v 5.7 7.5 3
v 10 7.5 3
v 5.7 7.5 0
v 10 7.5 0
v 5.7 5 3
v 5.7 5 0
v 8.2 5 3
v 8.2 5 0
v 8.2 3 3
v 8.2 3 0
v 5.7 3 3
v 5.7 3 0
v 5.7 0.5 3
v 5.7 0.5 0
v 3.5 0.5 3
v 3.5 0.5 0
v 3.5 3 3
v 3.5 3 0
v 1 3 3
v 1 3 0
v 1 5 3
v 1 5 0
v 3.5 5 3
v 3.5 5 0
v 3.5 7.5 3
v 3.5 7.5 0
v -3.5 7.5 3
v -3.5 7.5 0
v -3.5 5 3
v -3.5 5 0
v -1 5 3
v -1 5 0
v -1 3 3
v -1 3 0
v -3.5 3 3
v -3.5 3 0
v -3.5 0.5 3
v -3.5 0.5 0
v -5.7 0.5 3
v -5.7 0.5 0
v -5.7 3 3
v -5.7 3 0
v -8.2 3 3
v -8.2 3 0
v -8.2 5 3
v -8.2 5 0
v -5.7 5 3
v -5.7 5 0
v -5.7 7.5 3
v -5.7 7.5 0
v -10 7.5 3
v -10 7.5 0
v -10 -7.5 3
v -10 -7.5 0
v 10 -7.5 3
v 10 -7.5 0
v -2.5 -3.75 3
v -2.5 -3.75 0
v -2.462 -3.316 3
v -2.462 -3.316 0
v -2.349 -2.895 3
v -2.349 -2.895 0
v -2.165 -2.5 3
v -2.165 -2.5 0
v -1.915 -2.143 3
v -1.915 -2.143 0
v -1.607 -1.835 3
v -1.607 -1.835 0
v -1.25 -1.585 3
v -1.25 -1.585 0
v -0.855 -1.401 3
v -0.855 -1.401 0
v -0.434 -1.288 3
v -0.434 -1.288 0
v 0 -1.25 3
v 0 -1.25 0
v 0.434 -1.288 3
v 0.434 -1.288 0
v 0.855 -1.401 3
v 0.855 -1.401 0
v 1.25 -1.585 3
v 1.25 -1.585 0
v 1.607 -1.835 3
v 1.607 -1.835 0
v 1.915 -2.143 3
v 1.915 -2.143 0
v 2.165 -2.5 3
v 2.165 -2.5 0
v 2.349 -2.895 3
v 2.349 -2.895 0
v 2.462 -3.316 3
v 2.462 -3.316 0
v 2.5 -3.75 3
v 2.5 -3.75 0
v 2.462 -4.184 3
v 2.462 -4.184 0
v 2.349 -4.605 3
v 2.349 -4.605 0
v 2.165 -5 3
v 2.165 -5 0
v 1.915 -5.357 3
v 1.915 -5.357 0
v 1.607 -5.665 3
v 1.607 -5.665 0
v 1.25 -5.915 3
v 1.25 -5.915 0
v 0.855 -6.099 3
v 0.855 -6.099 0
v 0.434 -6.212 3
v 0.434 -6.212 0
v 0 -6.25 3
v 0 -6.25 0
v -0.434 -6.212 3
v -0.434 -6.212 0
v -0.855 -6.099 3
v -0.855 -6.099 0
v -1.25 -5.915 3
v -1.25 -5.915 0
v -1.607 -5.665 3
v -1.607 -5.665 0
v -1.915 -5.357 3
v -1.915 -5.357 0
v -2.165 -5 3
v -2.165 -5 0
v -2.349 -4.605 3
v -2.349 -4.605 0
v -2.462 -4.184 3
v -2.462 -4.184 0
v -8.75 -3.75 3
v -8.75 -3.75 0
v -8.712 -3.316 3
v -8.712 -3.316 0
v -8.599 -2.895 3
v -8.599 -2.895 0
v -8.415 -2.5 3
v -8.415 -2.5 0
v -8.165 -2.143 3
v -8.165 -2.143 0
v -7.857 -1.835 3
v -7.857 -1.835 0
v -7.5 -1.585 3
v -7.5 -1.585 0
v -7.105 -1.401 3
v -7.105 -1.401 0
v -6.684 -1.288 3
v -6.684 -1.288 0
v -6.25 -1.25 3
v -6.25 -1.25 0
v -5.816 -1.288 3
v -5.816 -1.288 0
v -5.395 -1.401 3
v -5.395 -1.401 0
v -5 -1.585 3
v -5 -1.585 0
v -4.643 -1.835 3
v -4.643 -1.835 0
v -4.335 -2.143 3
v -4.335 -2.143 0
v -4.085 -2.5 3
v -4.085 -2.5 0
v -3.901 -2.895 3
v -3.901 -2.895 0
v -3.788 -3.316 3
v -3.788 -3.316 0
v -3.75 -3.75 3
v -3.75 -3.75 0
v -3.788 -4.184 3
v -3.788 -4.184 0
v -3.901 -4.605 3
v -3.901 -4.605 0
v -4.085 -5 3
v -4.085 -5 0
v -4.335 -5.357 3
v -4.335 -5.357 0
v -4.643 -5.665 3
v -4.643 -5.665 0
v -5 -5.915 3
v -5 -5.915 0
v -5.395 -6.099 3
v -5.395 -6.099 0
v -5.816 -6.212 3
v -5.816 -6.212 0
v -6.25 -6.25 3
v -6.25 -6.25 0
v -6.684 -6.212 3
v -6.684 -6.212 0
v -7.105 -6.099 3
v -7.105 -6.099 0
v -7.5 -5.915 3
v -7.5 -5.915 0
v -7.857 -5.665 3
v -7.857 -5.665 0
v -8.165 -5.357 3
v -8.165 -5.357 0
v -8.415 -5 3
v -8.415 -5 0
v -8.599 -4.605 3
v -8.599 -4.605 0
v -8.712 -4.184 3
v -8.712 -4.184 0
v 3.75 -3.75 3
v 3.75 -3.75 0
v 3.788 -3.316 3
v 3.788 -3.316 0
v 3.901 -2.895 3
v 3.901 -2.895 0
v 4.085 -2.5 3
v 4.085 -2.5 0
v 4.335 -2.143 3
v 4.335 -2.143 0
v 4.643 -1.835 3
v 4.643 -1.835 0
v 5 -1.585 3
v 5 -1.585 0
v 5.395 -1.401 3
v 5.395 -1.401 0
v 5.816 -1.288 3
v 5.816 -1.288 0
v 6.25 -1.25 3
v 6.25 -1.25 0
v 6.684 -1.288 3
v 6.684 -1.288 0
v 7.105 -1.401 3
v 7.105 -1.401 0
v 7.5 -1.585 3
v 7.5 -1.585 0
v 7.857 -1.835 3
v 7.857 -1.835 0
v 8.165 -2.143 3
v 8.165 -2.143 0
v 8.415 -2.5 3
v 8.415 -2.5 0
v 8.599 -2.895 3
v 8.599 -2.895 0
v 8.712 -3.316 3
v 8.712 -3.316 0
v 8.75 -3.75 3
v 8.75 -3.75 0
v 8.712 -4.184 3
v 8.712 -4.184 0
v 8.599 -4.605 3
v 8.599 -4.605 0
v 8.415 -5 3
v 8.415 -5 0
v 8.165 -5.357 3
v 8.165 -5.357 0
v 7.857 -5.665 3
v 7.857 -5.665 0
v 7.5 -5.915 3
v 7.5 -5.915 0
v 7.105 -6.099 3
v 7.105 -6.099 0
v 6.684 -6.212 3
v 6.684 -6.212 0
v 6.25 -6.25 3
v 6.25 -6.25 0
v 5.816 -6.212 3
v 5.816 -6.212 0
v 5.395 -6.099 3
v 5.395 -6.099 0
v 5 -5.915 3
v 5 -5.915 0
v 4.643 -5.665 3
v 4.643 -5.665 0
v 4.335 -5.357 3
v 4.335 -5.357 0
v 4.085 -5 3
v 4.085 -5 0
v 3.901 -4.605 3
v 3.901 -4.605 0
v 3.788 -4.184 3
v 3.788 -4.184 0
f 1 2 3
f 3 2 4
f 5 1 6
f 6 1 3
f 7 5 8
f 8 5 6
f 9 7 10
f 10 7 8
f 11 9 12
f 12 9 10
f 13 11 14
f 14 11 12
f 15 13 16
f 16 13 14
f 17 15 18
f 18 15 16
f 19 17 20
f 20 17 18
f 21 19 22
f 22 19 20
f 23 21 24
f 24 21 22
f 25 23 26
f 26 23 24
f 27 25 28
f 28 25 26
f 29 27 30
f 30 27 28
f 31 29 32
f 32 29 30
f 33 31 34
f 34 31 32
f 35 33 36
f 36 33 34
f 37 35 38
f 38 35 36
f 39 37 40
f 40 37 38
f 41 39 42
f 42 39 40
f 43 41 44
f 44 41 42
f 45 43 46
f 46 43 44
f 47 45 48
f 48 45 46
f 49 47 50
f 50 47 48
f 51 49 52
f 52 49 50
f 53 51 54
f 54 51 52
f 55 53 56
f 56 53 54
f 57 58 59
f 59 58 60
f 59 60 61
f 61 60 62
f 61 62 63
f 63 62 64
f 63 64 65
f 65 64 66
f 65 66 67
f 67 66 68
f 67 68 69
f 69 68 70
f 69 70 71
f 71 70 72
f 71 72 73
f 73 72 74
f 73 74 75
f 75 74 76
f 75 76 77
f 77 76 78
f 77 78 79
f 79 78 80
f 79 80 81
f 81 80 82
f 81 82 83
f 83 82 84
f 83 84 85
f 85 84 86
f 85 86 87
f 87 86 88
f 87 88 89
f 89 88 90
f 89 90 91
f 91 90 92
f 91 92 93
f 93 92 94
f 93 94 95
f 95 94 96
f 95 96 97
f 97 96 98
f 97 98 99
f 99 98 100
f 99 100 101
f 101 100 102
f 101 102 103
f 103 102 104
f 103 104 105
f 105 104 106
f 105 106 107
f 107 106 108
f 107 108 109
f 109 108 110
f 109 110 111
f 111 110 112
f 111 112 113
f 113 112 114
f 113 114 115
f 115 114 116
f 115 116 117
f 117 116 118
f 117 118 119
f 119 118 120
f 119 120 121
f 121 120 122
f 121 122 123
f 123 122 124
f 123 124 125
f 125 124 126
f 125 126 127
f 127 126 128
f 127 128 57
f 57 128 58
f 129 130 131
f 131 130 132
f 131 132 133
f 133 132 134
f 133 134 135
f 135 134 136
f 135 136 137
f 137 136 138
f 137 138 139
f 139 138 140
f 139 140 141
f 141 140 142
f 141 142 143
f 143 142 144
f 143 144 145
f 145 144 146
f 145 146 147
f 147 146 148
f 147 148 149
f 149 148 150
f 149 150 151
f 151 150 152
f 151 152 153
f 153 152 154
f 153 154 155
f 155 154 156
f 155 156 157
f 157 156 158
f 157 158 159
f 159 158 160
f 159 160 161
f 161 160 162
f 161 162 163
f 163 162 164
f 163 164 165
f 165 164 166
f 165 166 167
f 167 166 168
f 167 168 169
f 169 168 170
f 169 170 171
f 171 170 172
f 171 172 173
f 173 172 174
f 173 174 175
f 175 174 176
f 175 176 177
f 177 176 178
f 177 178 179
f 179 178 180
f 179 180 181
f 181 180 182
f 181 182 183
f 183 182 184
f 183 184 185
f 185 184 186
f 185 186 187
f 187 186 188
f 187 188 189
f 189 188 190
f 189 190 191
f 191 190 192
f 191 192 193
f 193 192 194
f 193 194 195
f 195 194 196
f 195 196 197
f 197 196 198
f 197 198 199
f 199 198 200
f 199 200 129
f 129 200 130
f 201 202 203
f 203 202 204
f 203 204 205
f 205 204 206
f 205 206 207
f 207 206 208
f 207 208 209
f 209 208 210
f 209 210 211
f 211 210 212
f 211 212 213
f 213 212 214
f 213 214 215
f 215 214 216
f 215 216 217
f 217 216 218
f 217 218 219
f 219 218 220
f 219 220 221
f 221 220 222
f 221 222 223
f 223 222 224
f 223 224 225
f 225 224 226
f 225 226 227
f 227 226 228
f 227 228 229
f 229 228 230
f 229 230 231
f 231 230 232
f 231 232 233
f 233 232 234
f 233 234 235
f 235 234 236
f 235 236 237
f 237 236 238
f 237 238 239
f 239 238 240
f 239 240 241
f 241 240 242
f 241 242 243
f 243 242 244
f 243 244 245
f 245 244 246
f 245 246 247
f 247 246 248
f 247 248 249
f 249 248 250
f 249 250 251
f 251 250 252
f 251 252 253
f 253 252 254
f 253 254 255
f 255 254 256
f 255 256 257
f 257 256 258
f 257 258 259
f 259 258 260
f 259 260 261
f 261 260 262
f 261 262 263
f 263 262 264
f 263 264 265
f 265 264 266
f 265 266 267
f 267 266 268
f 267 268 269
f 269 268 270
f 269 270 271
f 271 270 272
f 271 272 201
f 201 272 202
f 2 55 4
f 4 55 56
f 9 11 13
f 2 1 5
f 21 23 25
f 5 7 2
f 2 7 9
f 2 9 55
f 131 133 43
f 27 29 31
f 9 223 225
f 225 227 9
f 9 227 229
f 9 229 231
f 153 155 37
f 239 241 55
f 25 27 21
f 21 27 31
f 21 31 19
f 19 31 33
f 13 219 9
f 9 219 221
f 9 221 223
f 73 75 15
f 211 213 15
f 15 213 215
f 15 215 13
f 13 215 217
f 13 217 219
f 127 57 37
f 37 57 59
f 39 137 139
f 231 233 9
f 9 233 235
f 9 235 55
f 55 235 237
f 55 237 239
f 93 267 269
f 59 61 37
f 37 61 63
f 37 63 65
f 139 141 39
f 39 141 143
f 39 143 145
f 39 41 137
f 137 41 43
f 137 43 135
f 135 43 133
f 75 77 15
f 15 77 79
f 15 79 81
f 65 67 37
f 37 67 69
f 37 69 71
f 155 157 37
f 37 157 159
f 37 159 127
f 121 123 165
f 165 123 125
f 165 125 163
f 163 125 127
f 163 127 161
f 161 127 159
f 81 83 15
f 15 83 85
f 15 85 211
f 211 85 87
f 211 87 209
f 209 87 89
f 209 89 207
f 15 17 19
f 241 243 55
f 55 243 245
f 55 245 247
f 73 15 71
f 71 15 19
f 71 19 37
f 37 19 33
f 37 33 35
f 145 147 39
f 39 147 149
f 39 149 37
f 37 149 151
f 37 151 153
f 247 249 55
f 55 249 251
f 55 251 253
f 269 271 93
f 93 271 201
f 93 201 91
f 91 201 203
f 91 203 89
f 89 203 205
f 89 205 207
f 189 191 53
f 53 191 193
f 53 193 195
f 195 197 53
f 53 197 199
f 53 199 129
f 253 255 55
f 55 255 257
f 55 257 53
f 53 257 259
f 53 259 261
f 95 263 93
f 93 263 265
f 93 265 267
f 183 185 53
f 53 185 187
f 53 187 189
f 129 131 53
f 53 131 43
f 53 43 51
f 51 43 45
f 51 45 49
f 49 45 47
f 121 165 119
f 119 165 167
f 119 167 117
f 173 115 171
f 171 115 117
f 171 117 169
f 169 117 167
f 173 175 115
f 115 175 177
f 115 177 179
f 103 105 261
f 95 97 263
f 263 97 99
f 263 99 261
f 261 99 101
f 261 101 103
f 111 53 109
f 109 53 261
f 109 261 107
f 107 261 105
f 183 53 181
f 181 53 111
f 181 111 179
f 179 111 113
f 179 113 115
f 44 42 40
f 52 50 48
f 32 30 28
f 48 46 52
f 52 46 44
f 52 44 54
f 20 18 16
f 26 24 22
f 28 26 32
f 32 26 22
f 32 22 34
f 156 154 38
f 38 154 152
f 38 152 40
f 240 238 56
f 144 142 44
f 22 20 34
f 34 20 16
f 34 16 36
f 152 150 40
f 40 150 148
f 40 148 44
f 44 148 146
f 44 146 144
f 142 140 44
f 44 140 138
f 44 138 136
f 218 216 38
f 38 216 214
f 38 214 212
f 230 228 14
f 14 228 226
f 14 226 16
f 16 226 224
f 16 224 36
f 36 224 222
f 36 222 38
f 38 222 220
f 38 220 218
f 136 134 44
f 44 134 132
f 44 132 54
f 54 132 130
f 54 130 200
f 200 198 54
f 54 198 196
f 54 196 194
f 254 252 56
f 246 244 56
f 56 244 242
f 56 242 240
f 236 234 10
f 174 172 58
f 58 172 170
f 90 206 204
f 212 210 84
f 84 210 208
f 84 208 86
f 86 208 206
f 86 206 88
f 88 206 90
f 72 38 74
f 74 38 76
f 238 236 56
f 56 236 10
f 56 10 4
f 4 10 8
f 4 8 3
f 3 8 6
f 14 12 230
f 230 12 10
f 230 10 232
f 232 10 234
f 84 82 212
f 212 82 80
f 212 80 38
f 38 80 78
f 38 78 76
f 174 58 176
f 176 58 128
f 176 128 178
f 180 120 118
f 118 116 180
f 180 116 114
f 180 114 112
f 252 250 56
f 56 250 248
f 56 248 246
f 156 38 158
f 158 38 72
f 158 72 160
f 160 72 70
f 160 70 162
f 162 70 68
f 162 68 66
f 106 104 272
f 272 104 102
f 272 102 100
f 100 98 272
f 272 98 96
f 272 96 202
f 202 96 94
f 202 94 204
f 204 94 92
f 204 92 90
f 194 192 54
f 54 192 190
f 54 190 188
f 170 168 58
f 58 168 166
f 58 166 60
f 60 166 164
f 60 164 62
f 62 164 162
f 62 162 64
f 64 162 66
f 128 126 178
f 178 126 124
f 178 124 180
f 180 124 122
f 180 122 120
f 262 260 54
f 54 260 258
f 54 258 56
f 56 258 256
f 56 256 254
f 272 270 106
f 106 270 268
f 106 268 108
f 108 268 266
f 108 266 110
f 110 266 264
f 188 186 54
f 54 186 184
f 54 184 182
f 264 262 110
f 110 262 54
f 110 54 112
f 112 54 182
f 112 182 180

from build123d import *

# Parameters (mm, degrees)
SKETCH1_R           = 2.5
BOSS_EXTRUDE1_DEPTH = 3


with BuildPart() as part:
    # Sketch1 → Boss-Extrude1 (new body)
    with BuildSketch(Plane.XY):
        Polygon((-10, -7.5), (10, -7.5), (10, 7.5), (5.7, 7.5), (5.7, 5), (8.2, 5), (8.2, 3), (5.7, 3), (5.7, 0.5), (3.5, 0.5), (3.5, 3), (1, 3), (1, 5), (3.5, 5), (3.5, 7.5), (-3.5, 7.5), (-3.5, 5), (-1, 5), (-1, 3), (-3.5, 3), (-3.5, 0.5), (-5.7, 0.5), (-5.7, 3), (-8.2, 3), (-8.2, 5), (-5.7, 5), (-5.7, 7.5), (-10, 7.5), align=None)
        with Locations((0, -3.75)):
            Circle(SKETCH1_R, mode=Mode.SUBTRACT)
        with Locations((-6.25, -3.75)):
            Circle(SKETCH1_R, mode=Mode.SUBTRACT)
        with Locations((6.25, -3.75)):
            Circle(SKETCH1_R, mode=Mode.SUBTRACT)
    extrude(amount=BOSS_EXTRUDE1_DEPTH)


solid = part.part
